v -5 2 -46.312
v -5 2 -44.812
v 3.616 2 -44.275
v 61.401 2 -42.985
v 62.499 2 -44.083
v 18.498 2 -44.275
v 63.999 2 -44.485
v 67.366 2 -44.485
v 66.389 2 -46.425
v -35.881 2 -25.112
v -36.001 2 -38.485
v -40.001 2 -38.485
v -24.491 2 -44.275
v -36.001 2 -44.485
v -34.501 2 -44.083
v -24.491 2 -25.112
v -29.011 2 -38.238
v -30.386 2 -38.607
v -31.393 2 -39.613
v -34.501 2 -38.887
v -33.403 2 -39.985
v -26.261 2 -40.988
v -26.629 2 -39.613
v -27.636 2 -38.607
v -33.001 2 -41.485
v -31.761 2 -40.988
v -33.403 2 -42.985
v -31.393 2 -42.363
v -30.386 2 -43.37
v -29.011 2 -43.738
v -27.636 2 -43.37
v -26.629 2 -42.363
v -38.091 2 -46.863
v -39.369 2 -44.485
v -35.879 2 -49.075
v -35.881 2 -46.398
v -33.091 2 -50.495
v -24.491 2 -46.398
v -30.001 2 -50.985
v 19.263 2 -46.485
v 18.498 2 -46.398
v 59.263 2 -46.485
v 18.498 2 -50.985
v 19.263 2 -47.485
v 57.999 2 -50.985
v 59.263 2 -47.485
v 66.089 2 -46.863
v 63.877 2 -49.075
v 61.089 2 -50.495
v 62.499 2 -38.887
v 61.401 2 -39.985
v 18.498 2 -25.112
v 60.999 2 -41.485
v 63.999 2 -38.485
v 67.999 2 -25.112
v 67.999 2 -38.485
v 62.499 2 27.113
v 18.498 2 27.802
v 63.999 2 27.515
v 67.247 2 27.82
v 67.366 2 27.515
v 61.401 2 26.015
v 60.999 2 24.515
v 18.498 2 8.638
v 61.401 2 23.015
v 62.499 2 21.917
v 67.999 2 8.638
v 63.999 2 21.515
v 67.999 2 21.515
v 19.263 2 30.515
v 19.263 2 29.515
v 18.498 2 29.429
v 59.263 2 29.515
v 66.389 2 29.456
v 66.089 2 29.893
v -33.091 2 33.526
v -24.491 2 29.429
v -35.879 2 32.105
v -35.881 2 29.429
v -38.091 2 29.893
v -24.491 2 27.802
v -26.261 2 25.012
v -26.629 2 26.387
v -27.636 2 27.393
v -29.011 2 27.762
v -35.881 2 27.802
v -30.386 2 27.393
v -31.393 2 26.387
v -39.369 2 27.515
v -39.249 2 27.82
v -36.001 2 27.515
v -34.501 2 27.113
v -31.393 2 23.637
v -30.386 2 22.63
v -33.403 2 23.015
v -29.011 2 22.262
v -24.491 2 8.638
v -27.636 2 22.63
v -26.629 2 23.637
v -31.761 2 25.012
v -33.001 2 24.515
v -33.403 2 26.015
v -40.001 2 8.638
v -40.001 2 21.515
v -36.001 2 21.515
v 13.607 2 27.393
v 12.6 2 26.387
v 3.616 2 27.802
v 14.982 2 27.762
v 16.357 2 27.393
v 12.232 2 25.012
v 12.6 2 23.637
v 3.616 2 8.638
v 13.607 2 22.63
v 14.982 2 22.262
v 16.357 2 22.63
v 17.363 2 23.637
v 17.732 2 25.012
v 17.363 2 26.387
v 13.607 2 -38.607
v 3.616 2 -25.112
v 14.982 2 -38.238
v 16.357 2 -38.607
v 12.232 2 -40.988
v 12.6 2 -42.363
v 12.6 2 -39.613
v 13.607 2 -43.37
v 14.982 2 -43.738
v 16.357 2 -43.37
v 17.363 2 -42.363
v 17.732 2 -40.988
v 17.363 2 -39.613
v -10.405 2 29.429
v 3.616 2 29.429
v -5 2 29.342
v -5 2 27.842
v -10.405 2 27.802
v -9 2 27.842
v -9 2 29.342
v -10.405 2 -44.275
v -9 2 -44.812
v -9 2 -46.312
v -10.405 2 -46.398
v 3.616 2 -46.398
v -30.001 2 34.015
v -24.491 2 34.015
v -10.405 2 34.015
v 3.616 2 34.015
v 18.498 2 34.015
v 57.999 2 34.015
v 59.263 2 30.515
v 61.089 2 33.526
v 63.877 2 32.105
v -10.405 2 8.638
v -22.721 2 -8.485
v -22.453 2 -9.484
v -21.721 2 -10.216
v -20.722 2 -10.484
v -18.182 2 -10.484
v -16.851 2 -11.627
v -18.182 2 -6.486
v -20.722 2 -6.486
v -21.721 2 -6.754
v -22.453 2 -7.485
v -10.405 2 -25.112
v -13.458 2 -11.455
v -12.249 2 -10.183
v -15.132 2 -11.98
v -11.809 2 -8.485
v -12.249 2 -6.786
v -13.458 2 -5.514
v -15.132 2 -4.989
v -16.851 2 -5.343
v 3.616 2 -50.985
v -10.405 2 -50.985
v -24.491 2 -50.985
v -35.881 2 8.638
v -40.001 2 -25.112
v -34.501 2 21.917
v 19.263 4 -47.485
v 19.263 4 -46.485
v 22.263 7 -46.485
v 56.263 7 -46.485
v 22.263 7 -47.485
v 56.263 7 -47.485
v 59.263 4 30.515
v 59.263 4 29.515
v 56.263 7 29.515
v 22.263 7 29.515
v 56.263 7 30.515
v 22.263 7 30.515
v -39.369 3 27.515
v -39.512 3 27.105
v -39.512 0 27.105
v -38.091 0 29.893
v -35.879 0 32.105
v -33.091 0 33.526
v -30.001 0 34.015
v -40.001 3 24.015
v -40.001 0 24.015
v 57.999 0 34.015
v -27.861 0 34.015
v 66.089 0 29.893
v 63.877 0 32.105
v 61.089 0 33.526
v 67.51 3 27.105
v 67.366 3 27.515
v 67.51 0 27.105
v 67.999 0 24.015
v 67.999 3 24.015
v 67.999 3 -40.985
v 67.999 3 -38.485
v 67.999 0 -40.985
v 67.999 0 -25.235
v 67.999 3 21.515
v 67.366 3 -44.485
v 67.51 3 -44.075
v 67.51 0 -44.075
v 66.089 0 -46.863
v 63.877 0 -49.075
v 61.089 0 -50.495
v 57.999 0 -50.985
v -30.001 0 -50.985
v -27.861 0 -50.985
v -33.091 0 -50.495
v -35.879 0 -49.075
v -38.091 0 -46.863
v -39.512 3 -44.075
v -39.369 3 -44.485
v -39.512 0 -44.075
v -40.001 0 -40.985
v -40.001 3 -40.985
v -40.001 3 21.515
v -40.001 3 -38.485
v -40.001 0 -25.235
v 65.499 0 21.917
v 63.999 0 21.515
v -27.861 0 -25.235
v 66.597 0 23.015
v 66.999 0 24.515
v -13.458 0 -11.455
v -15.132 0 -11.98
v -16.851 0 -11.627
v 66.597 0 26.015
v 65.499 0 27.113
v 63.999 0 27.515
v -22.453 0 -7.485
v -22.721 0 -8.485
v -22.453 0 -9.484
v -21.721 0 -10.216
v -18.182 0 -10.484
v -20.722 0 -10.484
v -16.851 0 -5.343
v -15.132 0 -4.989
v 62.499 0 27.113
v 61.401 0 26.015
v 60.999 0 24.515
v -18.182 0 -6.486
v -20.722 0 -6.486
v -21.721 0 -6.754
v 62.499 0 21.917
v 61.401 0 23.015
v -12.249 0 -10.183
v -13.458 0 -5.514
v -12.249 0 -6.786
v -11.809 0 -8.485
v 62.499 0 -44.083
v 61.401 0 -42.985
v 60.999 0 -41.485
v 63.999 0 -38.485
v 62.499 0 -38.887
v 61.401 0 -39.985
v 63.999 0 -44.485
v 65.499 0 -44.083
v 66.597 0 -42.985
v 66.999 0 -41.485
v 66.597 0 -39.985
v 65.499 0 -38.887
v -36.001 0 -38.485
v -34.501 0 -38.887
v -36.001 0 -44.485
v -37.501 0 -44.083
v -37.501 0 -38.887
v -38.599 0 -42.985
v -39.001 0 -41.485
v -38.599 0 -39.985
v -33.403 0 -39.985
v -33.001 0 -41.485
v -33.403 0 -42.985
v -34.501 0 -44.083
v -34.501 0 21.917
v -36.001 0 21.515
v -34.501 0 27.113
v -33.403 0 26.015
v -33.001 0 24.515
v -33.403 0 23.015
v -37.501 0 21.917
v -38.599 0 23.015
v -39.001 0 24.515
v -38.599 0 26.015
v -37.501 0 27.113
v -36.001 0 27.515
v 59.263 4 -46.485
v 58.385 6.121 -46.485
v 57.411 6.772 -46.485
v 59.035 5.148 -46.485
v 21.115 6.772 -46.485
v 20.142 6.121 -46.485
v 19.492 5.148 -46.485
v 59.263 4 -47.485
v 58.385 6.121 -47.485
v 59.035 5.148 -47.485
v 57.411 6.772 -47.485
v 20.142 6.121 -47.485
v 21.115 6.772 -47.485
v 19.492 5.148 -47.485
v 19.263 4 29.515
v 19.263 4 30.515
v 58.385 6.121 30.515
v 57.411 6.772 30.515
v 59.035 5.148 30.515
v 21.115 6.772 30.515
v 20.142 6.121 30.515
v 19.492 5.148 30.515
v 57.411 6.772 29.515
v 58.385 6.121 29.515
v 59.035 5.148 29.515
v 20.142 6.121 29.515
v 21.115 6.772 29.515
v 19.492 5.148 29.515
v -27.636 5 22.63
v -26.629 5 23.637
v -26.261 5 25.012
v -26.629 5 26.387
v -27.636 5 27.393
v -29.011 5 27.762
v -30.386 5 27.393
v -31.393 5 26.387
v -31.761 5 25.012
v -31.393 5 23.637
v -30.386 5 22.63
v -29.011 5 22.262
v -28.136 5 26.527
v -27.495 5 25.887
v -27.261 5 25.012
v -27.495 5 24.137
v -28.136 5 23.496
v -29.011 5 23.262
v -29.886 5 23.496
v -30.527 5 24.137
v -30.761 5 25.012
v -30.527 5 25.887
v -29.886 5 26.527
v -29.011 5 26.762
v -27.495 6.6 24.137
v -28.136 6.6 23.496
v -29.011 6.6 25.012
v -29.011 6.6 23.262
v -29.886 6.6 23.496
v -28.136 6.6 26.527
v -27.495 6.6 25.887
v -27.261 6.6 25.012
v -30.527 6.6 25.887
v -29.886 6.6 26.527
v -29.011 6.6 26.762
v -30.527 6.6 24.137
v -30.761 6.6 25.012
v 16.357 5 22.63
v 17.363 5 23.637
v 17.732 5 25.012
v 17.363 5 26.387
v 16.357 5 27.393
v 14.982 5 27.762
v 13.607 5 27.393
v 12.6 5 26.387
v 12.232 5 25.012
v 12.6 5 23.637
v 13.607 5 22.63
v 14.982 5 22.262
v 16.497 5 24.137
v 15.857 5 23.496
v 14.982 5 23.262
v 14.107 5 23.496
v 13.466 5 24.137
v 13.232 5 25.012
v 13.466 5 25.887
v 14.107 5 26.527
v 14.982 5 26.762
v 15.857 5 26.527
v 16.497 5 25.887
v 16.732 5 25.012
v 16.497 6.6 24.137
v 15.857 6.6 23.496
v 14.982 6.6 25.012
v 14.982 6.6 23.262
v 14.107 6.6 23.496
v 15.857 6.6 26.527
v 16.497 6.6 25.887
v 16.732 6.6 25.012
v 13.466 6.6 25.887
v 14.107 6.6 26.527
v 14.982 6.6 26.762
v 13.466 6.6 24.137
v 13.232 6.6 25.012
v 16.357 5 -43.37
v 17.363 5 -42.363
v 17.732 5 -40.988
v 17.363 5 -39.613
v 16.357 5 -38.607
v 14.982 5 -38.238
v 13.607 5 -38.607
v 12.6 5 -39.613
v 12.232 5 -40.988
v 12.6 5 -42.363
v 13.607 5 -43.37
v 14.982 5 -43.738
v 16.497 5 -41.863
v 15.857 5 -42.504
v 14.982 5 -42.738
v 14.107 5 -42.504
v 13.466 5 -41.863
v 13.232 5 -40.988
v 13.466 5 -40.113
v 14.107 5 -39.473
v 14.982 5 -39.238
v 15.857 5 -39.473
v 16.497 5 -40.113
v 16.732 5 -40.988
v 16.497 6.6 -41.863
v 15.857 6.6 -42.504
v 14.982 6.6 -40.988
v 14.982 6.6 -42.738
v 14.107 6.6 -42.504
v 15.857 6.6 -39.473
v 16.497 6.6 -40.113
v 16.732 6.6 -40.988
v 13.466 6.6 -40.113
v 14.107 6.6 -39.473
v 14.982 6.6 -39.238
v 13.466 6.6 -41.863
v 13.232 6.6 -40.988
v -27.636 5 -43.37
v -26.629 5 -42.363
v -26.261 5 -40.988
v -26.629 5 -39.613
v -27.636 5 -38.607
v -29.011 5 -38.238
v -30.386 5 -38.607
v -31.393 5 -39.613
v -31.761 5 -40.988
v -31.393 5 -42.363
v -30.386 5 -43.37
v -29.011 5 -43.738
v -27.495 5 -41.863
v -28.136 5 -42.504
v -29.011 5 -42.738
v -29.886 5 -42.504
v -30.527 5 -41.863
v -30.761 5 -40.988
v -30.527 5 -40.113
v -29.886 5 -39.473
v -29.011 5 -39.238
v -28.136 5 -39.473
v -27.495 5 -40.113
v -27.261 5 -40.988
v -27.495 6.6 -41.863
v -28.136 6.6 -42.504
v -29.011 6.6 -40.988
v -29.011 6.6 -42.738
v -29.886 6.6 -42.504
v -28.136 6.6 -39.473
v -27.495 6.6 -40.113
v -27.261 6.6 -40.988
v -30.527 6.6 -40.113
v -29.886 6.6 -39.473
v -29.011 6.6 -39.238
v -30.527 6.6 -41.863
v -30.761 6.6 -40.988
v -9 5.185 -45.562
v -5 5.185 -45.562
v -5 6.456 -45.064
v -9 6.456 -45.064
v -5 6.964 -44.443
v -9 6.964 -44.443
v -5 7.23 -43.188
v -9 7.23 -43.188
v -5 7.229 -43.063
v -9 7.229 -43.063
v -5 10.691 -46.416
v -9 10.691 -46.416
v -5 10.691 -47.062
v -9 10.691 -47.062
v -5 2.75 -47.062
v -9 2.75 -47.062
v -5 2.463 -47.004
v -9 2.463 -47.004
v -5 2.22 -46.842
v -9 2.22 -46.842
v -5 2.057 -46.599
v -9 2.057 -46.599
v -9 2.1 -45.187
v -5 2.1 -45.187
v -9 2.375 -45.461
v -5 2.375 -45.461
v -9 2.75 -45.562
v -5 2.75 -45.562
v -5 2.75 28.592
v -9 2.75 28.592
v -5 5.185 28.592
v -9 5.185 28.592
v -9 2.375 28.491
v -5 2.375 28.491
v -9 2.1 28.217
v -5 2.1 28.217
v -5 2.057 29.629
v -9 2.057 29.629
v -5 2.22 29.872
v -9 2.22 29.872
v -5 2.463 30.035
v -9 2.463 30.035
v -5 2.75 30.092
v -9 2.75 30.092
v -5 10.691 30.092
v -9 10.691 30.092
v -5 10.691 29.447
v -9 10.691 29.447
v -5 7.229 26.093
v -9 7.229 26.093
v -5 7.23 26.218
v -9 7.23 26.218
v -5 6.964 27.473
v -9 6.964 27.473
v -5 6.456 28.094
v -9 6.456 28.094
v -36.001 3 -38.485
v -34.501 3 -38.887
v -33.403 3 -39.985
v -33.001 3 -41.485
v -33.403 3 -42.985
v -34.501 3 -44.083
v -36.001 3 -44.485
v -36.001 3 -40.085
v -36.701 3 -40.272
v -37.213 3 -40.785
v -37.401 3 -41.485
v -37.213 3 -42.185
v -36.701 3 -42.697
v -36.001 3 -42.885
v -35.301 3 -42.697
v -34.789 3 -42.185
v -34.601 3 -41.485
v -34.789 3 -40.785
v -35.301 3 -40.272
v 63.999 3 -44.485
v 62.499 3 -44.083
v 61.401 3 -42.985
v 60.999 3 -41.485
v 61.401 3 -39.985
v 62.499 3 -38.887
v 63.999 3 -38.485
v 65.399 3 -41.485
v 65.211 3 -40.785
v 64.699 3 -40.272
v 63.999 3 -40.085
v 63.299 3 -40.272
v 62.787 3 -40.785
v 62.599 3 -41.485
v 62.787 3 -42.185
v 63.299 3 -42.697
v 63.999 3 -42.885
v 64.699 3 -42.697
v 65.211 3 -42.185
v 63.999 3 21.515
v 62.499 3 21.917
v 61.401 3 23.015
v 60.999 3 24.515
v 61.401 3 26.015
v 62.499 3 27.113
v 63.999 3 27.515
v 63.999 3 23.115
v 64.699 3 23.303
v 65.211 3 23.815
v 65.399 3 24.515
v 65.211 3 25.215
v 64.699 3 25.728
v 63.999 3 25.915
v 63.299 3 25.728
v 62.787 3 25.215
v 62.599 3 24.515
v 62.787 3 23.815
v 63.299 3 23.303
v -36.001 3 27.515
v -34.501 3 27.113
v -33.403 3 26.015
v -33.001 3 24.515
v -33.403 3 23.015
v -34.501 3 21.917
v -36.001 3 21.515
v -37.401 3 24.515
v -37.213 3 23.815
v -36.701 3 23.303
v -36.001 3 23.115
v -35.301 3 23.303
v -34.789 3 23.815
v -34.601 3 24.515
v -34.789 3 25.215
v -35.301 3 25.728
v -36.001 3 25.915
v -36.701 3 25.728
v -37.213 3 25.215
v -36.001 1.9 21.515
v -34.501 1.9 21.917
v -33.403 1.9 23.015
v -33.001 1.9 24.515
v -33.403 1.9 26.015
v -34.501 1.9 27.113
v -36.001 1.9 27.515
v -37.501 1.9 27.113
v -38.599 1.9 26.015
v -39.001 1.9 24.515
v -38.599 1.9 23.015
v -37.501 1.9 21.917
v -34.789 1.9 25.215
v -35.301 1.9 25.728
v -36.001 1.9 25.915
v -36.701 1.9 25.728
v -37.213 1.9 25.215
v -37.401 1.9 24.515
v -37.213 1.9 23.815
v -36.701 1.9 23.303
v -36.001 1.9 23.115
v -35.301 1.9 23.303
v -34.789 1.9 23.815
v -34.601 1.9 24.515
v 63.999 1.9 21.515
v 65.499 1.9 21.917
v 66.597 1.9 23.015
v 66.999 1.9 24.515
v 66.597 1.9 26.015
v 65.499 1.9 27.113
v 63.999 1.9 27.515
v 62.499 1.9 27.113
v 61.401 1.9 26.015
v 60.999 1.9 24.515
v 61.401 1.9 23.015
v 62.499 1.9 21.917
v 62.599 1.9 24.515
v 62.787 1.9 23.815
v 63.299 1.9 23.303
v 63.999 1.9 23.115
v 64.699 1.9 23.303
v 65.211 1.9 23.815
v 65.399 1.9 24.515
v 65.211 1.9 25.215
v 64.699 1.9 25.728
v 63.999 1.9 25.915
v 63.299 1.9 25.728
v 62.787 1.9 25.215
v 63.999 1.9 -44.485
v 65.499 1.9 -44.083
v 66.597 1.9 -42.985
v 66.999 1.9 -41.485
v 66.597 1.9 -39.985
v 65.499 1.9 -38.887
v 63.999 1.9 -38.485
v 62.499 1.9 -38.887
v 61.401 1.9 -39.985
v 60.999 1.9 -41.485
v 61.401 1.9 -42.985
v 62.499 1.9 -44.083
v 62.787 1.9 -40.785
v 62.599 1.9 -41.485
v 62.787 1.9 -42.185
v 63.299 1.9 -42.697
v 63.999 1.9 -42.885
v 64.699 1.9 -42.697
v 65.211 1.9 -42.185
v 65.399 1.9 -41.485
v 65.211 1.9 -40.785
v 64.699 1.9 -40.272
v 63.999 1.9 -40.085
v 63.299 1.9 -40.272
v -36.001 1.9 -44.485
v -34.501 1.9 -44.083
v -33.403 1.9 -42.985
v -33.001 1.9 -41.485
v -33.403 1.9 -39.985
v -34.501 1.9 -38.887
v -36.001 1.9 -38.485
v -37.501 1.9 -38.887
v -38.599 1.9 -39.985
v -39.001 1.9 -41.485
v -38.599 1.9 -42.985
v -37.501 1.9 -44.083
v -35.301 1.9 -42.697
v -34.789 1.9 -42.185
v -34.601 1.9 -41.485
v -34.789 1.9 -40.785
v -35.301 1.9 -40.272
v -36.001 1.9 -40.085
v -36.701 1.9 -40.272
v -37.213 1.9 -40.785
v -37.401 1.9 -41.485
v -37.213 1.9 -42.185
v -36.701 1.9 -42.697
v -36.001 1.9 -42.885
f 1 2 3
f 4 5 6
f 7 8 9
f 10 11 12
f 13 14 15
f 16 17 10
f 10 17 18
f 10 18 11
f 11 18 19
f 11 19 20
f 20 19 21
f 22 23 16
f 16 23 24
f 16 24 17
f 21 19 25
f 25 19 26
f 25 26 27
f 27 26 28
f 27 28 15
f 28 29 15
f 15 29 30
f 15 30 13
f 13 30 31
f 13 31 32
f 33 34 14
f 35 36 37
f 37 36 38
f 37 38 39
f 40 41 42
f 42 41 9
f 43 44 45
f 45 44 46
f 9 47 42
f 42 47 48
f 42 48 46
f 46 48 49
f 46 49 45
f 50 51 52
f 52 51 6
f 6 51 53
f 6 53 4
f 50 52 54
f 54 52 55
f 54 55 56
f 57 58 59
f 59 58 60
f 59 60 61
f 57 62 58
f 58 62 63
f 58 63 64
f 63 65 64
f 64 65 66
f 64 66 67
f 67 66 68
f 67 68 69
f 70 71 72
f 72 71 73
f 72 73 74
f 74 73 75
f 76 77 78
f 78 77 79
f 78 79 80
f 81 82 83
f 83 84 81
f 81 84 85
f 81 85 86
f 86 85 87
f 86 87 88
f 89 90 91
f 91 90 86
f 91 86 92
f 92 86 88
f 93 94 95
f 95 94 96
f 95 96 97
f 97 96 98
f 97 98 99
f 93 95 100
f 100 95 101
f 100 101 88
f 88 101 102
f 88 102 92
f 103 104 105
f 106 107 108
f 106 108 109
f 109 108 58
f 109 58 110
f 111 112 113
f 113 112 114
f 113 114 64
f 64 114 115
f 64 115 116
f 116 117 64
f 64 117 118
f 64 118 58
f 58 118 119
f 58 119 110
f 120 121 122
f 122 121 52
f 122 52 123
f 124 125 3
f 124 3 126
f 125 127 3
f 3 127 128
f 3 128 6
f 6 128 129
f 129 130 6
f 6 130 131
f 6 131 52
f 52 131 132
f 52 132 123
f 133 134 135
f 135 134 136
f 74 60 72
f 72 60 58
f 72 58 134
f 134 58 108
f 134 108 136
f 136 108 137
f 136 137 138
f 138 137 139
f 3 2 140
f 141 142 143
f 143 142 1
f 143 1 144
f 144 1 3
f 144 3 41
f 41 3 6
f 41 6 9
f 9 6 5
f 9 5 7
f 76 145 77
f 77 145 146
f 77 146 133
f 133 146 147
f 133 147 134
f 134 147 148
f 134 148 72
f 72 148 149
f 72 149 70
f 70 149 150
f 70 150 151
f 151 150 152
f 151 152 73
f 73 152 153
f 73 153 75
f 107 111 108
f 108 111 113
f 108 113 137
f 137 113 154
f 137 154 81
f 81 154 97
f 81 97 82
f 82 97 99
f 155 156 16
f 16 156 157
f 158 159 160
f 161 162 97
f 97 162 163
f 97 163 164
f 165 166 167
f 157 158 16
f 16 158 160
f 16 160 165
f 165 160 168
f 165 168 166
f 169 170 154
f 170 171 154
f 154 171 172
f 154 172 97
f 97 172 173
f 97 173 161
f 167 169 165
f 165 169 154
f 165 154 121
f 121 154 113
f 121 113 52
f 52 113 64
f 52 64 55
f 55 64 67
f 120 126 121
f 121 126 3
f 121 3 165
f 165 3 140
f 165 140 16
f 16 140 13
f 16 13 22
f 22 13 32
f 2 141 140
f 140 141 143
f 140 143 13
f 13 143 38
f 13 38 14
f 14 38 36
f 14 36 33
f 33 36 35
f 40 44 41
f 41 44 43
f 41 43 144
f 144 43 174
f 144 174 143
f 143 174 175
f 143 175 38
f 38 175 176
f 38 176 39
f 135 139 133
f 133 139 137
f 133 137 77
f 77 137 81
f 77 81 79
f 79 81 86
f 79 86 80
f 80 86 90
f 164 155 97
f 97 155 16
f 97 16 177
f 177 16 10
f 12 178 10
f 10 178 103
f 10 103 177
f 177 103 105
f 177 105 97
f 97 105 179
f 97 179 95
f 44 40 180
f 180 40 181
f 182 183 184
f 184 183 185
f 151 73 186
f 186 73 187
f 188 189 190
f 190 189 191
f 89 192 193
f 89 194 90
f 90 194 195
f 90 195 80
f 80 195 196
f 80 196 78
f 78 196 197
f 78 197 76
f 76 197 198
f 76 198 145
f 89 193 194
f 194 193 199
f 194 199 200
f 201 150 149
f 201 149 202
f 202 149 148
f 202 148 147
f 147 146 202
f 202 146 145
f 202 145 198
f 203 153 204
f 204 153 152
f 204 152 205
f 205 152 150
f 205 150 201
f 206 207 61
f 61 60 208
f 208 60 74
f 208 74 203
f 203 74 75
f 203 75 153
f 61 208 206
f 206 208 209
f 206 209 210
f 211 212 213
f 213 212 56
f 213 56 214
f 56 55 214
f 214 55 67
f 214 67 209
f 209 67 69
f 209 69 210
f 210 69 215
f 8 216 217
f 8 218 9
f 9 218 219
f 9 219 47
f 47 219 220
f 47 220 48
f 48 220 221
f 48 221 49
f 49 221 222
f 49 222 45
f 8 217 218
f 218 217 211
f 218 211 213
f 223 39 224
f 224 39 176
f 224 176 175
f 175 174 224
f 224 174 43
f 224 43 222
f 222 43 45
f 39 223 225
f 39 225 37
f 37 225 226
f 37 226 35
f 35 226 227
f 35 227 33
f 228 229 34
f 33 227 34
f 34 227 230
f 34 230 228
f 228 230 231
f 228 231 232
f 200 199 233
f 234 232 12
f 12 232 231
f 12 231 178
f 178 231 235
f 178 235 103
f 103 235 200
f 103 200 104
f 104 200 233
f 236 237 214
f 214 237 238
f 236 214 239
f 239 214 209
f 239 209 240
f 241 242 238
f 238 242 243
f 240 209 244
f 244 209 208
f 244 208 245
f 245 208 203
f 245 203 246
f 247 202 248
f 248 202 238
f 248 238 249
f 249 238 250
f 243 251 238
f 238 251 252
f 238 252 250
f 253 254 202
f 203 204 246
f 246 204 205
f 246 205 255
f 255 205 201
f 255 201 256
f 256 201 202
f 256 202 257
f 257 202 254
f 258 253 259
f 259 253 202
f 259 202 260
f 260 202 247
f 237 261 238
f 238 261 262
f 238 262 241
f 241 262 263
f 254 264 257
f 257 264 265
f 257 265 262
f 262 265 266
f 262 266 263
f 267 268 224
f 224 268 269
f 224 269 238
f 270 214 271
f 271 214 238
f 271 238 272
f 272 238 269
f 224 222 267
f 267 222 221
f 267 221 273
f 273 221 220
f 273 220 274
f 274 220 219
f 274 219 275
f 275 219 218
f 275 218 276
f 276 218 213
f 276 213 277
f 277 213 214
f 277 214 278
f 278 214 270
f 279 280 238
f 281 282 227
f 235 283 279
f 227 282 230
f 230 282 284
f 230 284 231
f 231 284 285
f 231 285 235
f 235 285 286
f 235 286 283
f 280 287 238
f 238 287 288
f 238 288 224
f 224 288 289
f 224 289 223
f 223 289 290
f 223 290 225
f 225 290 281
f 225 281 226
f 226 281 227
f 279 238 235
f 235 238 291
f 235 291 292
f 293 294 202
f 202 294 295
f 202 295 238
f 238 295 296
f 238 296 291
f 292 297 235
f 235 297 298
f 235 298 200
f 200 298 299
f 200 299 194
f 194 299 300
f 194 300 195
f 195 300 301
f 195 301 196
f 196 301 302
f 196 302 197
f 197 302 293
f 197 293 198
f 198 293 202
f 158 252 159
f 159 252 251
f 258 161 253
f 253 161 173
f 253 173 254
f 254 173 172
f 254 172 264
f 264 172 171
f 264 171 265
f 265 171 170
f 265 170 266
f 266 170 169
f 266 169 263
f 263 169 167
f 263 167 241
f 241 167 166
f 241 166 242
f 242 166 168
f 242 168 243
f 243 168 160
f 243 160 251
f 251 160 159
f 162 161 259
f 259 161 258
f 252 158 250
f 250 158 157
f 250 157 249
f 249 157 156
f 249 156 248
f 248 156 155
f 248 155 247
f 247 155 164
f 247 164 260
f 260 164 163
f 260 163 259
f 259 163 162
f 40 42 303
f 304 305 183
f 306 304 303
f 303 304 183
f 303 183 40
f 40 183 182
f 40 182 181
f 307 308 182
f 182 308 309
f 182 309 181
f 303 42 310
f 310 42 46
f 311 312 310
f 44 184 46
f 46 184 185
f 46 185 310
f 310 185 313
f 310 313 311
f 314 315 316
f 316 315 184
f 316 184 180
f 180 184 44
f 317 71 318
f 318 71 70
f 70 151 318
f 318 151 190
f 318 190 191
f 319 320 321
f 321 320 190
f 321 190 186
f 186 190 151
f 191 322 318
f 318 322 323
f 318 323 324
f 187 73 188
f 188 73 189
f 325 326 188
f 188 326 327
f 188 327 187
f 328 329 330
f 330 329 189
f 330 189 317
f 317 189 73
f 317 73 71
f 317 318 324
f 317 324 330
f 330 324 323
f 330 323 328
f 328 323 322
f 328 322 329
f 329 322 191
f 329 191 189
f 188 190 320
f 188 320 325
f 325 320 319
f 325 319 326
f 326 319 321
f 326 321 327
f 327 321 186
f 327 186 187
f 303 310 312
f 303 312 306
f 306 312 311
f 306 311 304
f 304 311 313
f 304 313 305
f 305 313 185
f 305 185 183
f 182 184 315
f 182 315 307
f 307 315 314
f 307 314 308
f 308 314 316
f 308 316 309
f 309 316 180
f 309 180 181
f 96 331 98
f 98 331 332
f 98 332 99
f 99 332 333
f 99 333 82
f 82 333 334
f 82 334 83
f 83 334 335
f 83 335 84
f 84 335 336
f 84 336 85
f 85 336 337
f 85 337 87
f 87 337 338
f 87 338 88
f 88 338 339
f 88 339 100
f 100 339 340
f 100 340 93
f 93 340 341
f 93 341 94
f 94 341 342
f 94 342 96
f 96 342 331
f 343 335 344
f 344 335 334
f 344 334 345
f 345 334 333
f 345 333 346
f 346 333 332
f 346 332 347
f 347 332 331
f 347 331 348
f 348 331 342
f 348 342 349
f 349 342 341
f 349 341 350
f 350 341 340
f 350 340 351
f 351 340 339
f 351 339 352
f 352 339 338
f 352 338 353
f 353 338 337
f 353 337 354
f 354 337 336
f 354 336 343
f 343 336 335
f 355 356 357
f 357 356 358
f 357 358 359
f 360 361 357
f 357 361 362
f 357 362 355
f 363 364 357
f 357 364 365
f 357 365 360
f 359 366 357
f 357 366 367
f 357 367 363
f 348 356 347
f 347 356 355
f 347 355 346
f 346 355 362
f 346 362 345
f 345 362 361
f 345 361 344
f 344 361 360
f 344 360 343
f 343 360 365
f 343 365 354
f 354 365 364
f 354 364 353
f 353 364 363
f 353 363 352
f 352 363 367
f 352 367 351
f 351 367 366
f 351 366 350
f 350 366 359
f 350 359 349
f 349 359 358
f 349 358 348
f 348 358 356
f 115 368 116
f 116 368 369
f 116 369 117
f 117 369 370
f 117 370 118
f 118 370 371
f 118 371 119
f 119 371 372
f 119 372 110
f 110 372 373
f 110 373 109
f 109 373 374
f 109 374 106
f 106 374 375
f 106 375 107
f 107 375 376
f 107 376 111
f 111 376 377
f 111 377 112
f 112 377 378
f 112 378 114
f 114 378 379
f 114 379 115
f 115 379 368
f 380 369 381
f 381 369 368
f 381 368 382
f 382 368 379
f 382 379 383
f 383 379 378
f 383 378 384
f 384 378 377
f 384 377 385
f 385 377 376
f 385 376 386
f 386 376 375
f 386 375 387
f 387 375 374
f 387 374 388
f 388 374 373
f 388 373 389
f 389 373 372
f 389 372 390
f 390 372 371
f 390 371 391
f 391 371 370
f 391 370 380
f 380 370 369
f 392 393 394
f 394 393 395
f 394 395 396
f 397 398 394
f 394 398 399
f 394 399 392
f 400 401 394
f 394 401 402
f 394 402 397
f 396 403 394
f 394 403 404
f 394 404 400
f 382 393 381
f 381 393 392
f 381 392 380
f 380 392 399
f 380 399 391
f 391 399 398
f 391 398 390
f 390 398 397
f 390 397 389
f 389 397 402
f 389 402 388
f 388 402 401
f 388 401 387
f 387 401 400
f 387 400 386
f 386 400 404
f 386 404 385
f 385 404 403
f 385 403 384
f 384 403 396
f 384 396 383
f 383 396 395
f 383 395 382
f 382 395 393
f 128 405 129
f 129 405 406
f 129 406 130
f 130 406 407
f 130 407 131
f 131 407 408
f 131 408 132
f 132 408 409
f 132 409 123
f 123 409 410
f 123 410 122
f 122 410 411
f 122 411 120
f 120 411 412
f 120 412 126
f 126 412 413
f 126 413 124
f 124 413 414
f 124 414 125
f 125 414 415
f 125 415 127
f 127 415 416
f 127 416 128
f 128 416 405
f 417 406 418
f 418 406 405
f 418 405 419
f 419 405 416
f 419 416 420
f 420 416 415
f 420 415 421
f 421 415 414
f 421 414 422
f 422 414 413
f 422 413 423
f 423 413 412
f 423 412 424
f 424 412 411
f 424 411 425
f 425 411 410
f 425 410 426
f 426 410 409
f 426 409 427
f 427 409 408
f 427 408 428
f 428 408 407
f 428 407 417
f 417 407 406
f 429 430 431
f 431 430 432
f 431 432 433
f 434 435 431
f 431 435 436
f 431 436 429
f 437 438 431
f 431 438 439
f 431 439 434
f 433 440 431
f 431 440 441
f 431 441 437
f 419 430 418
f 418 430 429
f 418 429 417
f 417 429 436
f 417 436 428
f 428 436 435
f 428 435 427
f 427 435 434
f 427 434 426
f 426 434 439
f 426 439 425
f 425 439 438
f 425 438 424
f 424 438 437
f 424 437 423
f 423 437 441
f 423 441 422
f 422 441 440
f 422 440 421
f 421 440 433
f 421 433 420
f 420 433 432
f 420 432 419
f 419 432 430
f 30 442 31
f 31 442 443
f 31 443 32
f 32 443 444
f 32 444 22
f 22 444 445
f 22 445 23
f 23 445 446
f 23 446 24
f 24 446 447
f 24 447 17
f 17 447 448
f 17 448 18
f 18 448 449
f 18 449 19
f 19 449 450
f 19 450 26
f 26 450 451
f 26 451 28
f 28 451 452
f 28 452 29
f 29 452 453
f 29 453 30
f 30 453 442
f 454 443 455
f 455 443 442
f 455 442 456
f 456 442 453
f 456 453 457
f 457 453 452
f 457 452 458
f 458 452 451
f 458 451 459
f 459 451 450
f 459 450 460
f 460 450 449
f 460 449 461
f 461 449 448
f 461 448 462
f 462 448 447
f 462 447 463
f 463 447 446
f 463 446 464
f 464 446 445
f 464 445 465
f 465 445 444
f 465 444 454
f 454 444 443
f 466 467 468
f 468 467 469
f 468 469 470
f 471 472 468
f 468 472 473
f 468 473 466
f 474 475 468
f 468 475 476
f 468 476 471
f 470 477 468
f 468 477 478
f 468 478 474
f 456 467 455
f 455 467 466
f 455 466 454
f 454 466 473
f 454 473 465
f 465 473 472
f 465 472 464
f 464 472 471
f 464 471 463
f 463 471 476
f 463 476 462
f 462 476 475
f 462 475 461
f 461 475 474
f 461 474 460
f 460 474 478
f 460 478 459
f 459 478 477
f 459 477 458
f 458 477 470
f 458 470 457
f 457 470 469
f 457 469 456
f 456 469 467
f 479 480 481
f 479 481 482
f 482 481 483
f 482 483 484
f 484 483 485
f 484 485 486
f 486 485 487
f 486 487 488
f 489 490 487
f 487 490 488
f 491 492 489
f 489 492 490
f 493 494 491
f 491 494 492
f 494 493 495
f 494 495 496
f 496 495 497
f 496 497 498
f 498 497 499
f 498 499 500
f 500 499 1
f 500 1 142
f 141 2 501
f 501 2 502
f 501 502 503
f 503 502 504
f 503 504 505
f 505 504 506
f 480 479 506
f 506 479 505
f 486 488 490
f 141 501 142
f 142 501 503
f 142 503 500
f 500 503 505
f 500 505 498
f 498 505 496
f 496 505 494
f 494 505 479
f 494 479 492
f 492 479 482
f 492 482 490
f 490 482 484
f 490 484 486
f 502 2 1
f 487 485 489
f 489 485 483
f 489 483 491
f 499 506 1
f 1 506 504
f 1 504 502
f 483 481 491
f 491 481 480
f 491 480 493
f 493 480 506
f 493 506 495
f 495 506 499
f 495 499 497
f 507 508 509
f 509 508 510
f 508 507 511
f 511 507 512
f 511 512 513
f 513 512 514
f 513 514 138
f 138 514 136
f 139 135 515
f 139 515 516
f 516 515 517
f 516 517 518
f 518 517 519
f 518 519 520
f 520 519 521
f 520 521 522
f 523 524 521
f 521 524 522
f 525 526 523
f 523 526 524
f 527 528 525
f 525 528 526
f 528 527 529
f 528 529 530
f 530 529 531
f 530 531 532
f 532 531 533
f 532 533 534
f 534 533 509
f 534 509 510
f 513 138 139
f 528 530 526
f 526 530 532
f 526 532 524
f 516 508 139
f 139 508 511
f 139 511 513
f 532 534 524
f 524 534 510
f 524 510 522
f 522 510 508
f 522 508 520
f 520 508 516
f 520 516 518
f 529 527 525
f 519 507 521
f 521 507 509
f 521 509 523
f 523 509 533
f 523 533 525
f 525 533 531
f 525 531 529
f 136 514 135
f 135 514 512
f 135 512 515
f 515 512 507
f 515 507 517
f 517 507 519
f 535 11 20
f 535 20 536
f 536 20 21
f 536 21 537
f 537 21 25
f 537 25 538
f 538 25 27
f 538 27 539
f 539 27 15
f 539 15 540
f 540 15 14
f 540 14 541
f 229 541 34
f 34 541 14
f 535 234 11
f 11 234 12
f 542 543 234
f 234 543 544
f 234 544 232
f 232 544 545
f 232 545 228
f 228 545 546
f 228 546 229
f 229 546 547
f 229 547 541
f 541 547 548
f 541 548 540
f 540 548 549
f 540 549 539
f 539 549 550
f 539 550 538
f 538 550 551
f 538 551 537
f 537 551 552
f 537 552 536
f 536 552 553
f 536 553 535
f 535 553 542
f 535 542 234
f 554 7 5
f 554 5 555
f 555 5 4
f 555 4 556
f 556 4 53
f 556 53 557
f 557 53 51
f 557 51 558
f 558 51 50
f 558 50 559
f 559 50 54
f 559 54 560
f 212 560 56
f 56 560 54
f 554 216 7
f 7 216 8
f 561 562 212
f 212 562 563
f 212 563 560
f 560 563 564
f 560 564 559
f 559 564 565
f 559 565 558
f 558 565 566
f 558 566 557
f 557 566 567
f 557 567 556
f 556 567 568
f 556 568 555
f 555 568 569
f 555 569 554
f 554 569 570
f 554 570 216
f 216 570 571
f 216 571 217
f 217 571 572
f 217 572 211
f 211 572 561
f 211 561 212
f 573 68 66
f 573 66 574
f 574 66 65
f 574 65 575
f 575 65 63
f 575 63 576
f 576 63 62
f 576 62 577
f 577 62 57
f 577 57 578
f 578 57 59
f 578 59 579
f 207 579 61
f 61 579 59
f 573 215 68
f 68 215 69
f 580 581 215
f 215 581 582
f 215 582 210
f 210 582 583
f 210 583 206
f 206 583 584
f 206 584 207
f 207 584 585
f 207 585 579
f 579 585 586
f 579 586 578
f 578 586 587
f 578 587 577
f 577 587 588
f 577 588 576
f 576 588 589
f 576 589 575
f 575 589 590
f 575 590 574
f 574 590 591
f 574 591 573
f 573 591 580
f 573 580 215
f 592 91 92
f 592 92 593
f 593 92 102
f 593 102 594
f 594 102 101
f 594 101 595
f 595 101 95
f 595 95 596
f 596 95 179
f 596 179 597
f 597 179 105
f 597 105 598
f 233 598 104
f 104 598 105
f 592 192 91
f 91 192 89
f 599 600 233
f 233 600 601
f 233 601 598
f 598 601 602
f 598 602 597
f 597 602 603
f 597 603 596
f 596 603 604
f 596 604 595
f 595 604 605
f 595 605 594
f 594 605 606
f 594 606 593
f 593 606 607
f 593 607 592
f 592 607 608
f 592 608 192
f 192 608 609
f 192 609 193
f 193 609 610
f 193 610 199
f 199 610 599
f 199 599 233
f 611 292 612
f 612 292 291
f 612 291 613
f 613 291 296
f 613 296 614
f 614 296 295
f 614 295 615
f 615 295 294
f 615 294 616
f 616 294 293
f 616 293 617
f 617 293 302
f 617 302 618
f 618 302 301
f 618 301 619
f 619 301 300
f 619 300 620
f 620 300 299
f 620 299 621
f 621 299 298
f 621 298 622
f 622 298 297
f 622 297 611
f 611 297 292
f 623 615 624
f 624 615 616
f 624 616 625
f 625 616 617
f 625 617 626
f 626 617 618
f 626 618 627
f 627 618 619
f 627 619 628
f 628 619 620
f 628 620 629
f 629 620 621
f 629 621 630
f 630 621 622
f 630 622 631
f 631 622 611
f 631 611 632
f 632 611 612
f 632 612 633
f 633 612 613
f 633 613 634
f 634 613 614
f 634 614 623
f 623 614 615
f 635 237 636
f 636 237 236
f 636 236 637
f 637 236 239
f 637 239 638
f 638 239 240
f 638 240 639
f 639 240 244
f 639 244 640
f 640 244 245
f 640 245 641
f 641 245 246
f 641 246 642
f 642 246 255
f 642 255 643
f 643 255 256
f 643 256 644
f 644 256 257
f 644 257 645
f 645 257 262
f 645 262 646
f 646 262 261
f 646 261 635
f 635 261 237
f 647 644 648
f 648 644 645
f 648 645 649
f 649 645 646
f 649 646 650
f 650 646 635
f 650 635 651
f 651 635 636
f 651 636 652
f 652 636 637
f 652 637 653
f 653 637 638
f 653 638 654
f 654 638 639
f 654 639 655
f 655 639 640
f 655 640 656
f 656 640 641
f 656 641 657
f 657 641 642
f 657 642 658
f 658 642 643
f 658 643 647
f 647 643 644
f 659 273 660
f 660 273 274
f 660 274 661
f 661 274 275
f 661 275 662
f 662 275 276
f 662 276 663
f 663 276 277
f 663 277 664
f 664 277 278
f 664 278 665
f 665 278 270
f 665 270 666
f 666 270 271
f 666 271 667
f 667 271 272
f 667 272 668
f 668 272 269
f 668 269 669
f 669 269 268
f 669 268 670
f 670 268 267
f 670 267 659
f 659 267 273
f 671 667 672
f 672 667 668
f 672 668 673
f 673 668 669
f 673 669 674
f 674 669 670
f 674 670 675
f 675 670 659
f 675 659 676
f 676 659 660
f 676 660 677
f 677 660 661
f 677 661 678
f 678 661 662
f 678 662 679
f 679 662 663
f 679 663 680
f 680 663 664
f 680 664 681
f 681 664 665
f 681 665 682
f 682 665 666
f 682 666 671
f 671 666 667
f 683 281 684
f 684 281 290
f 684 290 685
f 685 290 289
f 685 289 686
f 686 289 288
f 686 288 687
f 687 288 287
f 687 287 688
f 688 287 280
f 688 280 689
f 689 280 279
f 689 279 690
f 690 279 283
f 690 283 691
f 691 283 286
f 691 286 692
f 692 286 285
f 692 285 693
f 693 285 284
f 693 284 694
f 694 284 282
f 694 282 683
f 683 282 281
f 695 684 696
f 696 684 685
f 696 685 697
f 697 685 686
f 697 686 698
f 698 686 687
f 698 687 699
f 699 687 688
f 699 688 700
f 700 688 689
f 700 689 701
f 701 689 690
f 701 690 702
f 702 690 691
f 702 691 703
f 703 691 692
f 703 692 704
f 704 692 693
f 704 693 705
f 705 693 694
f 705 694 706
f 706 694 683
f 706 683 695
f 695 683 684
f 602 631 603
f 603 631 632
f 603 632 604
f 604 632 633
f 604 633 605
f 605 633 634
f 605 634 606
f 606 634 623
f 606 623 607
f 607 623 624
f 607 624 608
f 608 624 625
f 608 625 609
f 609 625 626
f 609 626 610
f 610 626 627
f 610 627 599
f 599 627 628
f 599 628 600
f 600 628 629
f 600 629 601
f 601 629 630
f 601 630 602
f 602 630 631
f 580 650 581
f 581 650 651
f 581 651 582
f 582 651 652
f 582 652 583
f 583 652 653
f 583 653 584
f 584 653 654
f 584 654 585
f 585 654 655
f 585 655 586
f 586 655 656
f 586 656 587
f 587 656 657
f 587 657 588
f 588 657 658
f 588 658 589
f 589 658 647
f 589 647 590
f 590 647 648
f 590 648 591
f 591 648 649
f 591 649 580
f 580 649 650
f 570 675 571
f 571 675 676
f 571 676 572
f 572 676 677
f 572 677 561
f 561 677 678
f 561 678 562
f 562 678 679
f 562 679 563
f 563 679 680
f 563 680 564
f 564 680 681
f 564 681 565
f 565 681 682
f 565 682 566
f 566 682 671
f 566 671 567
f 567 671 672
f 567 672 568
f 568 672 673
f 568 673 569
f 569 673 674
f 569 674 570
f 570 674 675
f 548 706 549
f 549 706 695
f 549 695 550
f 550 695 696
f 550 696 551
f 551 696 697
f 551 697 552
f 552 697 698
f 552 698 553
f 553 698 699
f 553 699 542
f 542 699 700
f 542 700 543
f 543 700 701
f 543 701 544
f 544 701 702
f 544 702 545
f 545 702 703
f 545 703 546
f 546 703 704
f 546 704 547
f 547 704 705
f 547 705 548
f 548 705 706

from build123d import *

# Parameters (mm, degrees)
BOSS_EXTRUDE2_DEPTH      = 2
CUT_EXTRUDE2_DEPTH       = 7
SKETCH10_W               = 40
SKETCH10_H               = 1
BOSS_EXTRUDE3_DEPTH      = 7
CUT_EXTRUDE4_DEPTH       = 1
CUT_EXTRUDE5_DEPTH       = 1
SKETCH14_R               = 1.75
BOSS_EXTRUDE4_DEPTH      = 6.600028
SKETCH15_R               = 2.75
BOSS_EXTRUDE5_DEPTH      = 5
BOSS_EXTRUDE7_DEPTH      = 2
BOSS_EXTRUDE7_DEPTH_BACK = 2
BOSS_EXTRUDE8_DEPTH      = 3
SKETCH21_R               = 3
CUT_EXTRUDE7_DEPTH       = 1.9
SKETCH22_R               = 1.4
CUT_EXTRUDE8_DEPTH       = 15


with BuildPart() as part:
    # Sketch3 → Boss-Extrude2 (new body)
    with BuildSketch(Plane(origin=(0, 0, 0), x_dir=(1, 0, 0), z_dir=(0, 1, 0))):
        with BuildLine():
            Line((-30.001043465, -34.015189653), (57.998956535, -34.015189653))
            ThreePointArc((57.998956535, -34.015189653), (65.070024347, -31.086257464), (67.998956535, -24.015189653))
            Line((67.998956535, -24.015189653), (67.998956535, 40.984810347))
            ThreePointArc((67.998956535, 40.984810347), (65.070024347, 48.055878159), (57.998956535, 50.984810347))
            Line((57.998956535, 50.984810347), (-30.001043465, 50.984810347))
            ThreePointArc((-30.001043465, 50.984810347), (-37.072111277, 48.055878159), (-40.001043465, 40.984810347))
            Line((-40.001043465, 40.984810347), (-40.001043465, -24.015189653))
            ThreePointArc((-40.001043465, -24.015189653), (-37.072111277, -31.086257464), (-30.001043465, -34.015189653))
        make_face()
    extrude(amount=BOSS_EXTRUDE2_DEPTH)

    # Sketch6 → Cut-Extrude2 (cut)
    with BuildSketch(Plane(origin=(0, 2, 0), x_dir=(1, 0, 0), z_dir=(0, 1, 0))):
        with BuildLine():
            Line((-18.182060551, 10.483778137), (-20.721753803, 10.483778137))
            ThreePointArc((-20.721753803, 10.483778137), (-22.720721593, 8.484810347), (-20.721753803, 6.485842558))
            Line((-20.721753803, 6.485842558), (-18.182060551, 6.485842558))
            ThreePointArc((-18.182060551, 6.485842558), (-11.809060764, 8.484810347), (-18.182060551, 10.483778137))
        make_face()
    extrude(amount=-CUT_EXTRUDE2_DEPTH, mode=Mode.SUBTRACT)

    # Sketch10 → Boss-Extrude3 (add)
    with BuildSketch(Plane(origin=(0, 0, 0), x_dir=(1, 0, 0), z_dir=(0, 1, 0))):
        with Locations((39.263184903, 46.984810347)):
            Rectangle(SKETCH10_W, SKETCH10_H)
        with Locations((39.263184903, -30.015189653)):
            Rectangle(SKETCH10_W, SKETCH10_H)
    extrude(amount=BOSS_EXTRUDE3_DEPTH)

    # Sketch12 → Cut-Extrude4 (cut)
    with BuildSketch(Plane.XY.offset(30.515189653)):
        with BuildLine():
            Line((56.263184903, 7), (59.263184903, 7))
            Line((59.263184903, 7), (59.263184903, 4))
            ThreePointArc((59.263184903, 4), (58.384505246, 6.121320344), (56.263184903, 7))
        make_face()
        with BuildLine():
            Line((19.263184903, 4), (19.263184903, 7))
            Line((19.263184903, 7), (22.263184903, 7))
            ThreePointArc((22.263184903, 7), (20.141864559, 6.121320344), (19.263184903, 4))
        make_face()
    extrude(amount=-CUT_EXTRUDE4_DEPTH, mode=Mode.SUBTRACT)

    # Sketch13 → Cut-Extrude5 (cut)
    with BuildSketch(Plane(origin=(0, 0, -47.484810347), x_dir=(-1, 0, 0), z_dir=(0, 0, -1))):
        with BuildLine():
            Line((-56.263184903, 7), (-59.263184903, 7))
            Line((-59.263184903, 7), (-59.263184903, 4))
            ThreePointArc((-59.263184903, 4), (-58.384505246, 6.121320344), (-56.263184903, 7))
        make_face()
        with BuildLine():
            Line((-19.263184903, 4), (-19.263184903, 7))
            Line((-19.263184903, 7), (-22.263184903, 7))
            ThreePointArc((-22.263184903, 7), (-20.141864559, 6.121320344), (-19.263184903, 4))
        make_face()
    extrude(amount=-CUT_EXTRUDE5_DEPTH, mode=Mode.SUBTRACT)

    # Sketch14 → Boss-Extrude4 (add)
    with BuildSketch(Plane.XZ):
        with Locations((-29.011006112, 25.011760646)):
            Circle(SKETCH14_R)
        with Locations((14.981881874, 25.011760646)):
            Circle(SKETCH14_R)
        with Locations((14.981881874, -40.988239354)):
            Circle(SKETCH14_R)
        with Locations((-29.011006112, -40.988239354)):
            Circle(SKETCH14_R)
    extrude(amount=-BOSS_EXTRUDE4_DEPTH)

    # Sketch15 → Boss-Extrude5 (add)
    with BuildSketch(Plane.XZ):
        with Locations((-29.011006112, 25.011760646)):
            Circle(SKETCH15_R)
        with Locations((14.981881874, 25.011760646)):
            Circle(SKETCH15_R)
        with Locations((14.981881874, -40.988239354)):
            Circle(SKETCH15_R)
        with Locations((-29.011006112, -40.988239354)):
            Circle(SKETCH15_R)
    extrude(amount=-BOSS_EXTRUDE5_DEPTH)

    # Sketch19 → Boss-Extrude7 (add, two sides)
    with BuildSketch(Plane(origin=(-7, 0, 0), x_dir=(0, 0, -1), z_dir=(1, 0, 0))) as boss_extrude7_sk:
        with BuildLine():
            add(Edge.make_bspline(
                [(45.56151484, 5.184913415), (45.252793653, 7.279810059), (43.062728824, 7.229305282)],
                knots=[0, 0, 0, 1, 1, 1], degree=2))
            Line((43.062728824, 7.229305282), (46.416379445, 10.690814493))
            Line((46.416379445, 10.690814493), (47.06151484, 10.690814493))
            Line((47.06151484, 10.690814493), (47.06151484, 2.75))
            ThreePointArc((47.06151484, 2.75), (46.841844926, 2.219669914), (46.31151484, 2))
            Line((46.31151484, 2), (46.31151484, 0))
            Line((46.31151484, 0), (44.81151484, 0))
            Line((44.81151484, 0), (44.81151484, 2))
            ThreePointArc((44.81151484, 2), (45.341844926, 2.219669914), (45.56151484, 2.75))
            Line((45.56151484, 2.75), (45.56151484, 5.184913415))
        make_face()
        with BuildLine():
            Line((-29.44675875, 10.690814493), (-30.091894145, 10.690814493))
            Line((-30.091894145, 10.690814493), (-30.091894145, 2.75))
            ThreePointArc((-30.091894145, 2.75), (-29.872224231, 2.219669914), (-29.341894145, 2))
            Line((-29.341894145, 2), (-29.341894145, 0))
            Line((-29.341894145, 0), (-28.591894145, 0))
            Line((-28.591894145, 0), (-27.841894145, 0))
            Line((-27.841894145, 0), (-27.841894145, 2))
            ThreePointArc((-27.841894145, 2), (-28.372224231, 2.219669914), (-28.591894145, 2.75))
            Line((-28.591894145, 2.75), (-28.591894145, 5.184913415))
            add(Edge.make_bspline(
                [(-28.591894145, 5.184913415), (-28.283172958, 7.279810059), (-26.09310813, 7.229305282)],
                knots=[0, 0, 0, 1, 1, 1], degree=2))
            Line((-26.09310813, 7.229305282), (-29.44675875, 10.690814493))
        make_face()
    extrude(amount=BOSS_EXTRUDE7_DEPTH)
    extrude(boss_extrude7_sk.sketch, amount=-BOSS_EXTRUDE7_DEPTH_BACK)

    # Sketch5 → Boss-Extrude8 (add)
    with BuildSketch(Plane(origin=(0, 0, 34.015189653), x_dir=(1, 0, 0), z_dir=(0, 1, 0))):
        with BuildLine():
            Line((-36.001043465, 78.5), (-39.368540462, 78.5))
            ThreePointArc((-39.368540462, 78.5), (-39.841647358, 76.778346145), (-40.001043465, 75))
            Line((-40.001043465, 75), (-40.001043465, 72.5))
            Line((-40.001043465, 72.5), (-36.001043465, 72.5))
            ThreePointArc((-36.001043465, 72.5), (-33.001043465, 75.5), (-36.001043465, 78.5))
        make_face()
        with BuildLine():
            Line((63.998956535, 78.5), (67.366453533, 78.5))
            ThreePointArc((67.366453533, 78.5), (67.839560429, 76.778346145), (67.998956535, 75))
            Line((67.998956535, 75), (67.998956535, 72.5))
            Line((67.998956535, 72.5), (63.998956535, 72.5))
            ThreePointArc((63.998956535, 72.5), (60.998956535, 75.5), (63.998956535, 78.5))
        make_face()
        with BuildLine():
            Line((63.998956535, 12.5), (67.998956535, 12.5))
            Line((67.998956535, 12.5), (67.998956535, 10))
            ThreePointArc((67.998956535, 10), (67.839560429, 8.221653855), (67.366453533, 6.5))
            Line((67.366453533, 6.5), (63.998956535, 6.5))
            ThreePointArc((63.998956535, 6.5), (60.998956535, 9.5), (63.998956535, 12.5))
        make_face()
        with BuildLine():
            Line((-36.001043465, 12.5), (-40.001043465, 12.5))
            Line((-40.001043465, 12.5), (-40.001043465, 10))
            ThreePointArc((-40.001043465, 10), (-39.841647358, 8.221653855), (-39.368540462, 6.5))
            Line((-39.368540462, 6.5), (-36.001043465, 6.5))
            ThreePointArc((-36.001043465, 6.5), (-33.001043465, 9.5), (-36.001043465, 12.5))
        make_face()
    extrude(amount=BOSS_EXTRUDE8_DEPTH)

    # Sketch21 → Cut-Extrude7 (cut)
    with BuildSketch(Plane.XZ):
        with Locations((-36.001043465, 24.515189653)):
            Circle(SKETCH21_R)
        with Locations((63.998956535, 24.515189653)):
            Circle(SKETCH21_R)
        with Locations((63.998956535, -41.484810347)):
            Circle(SKETCH21_R)
        with Locations((-36.001043465, -41.484810347)):
            Circle(SKETCH21_R)
    extrude(amount=-CUT_EXTRUDE7_DEPTH, mode=Mode.SUBTRACT)

    # Sketch22 → Cut-Extrude8 (cut)
    with BuildSketch(Plane.XZ.offset(-1.9)):
        with Locations((-36.001043465, 24.515189653)):
            Circle(SKETCH22_R)
        with Locations((63.998956535, 24.515189653)):
            Circle(SKETCH22_R)
        with Locations((63.998956535, -41.484810347)):
            Circle(SKETCH22_R)
        with Locations((-36.001043465, -41.484810347)):
            Circle(SKETCH22_R)
    extrude(amount=-CUT_EXTRUDE8_DEPTH, mode=Mode.SUBTRACT)


solid = part.part
